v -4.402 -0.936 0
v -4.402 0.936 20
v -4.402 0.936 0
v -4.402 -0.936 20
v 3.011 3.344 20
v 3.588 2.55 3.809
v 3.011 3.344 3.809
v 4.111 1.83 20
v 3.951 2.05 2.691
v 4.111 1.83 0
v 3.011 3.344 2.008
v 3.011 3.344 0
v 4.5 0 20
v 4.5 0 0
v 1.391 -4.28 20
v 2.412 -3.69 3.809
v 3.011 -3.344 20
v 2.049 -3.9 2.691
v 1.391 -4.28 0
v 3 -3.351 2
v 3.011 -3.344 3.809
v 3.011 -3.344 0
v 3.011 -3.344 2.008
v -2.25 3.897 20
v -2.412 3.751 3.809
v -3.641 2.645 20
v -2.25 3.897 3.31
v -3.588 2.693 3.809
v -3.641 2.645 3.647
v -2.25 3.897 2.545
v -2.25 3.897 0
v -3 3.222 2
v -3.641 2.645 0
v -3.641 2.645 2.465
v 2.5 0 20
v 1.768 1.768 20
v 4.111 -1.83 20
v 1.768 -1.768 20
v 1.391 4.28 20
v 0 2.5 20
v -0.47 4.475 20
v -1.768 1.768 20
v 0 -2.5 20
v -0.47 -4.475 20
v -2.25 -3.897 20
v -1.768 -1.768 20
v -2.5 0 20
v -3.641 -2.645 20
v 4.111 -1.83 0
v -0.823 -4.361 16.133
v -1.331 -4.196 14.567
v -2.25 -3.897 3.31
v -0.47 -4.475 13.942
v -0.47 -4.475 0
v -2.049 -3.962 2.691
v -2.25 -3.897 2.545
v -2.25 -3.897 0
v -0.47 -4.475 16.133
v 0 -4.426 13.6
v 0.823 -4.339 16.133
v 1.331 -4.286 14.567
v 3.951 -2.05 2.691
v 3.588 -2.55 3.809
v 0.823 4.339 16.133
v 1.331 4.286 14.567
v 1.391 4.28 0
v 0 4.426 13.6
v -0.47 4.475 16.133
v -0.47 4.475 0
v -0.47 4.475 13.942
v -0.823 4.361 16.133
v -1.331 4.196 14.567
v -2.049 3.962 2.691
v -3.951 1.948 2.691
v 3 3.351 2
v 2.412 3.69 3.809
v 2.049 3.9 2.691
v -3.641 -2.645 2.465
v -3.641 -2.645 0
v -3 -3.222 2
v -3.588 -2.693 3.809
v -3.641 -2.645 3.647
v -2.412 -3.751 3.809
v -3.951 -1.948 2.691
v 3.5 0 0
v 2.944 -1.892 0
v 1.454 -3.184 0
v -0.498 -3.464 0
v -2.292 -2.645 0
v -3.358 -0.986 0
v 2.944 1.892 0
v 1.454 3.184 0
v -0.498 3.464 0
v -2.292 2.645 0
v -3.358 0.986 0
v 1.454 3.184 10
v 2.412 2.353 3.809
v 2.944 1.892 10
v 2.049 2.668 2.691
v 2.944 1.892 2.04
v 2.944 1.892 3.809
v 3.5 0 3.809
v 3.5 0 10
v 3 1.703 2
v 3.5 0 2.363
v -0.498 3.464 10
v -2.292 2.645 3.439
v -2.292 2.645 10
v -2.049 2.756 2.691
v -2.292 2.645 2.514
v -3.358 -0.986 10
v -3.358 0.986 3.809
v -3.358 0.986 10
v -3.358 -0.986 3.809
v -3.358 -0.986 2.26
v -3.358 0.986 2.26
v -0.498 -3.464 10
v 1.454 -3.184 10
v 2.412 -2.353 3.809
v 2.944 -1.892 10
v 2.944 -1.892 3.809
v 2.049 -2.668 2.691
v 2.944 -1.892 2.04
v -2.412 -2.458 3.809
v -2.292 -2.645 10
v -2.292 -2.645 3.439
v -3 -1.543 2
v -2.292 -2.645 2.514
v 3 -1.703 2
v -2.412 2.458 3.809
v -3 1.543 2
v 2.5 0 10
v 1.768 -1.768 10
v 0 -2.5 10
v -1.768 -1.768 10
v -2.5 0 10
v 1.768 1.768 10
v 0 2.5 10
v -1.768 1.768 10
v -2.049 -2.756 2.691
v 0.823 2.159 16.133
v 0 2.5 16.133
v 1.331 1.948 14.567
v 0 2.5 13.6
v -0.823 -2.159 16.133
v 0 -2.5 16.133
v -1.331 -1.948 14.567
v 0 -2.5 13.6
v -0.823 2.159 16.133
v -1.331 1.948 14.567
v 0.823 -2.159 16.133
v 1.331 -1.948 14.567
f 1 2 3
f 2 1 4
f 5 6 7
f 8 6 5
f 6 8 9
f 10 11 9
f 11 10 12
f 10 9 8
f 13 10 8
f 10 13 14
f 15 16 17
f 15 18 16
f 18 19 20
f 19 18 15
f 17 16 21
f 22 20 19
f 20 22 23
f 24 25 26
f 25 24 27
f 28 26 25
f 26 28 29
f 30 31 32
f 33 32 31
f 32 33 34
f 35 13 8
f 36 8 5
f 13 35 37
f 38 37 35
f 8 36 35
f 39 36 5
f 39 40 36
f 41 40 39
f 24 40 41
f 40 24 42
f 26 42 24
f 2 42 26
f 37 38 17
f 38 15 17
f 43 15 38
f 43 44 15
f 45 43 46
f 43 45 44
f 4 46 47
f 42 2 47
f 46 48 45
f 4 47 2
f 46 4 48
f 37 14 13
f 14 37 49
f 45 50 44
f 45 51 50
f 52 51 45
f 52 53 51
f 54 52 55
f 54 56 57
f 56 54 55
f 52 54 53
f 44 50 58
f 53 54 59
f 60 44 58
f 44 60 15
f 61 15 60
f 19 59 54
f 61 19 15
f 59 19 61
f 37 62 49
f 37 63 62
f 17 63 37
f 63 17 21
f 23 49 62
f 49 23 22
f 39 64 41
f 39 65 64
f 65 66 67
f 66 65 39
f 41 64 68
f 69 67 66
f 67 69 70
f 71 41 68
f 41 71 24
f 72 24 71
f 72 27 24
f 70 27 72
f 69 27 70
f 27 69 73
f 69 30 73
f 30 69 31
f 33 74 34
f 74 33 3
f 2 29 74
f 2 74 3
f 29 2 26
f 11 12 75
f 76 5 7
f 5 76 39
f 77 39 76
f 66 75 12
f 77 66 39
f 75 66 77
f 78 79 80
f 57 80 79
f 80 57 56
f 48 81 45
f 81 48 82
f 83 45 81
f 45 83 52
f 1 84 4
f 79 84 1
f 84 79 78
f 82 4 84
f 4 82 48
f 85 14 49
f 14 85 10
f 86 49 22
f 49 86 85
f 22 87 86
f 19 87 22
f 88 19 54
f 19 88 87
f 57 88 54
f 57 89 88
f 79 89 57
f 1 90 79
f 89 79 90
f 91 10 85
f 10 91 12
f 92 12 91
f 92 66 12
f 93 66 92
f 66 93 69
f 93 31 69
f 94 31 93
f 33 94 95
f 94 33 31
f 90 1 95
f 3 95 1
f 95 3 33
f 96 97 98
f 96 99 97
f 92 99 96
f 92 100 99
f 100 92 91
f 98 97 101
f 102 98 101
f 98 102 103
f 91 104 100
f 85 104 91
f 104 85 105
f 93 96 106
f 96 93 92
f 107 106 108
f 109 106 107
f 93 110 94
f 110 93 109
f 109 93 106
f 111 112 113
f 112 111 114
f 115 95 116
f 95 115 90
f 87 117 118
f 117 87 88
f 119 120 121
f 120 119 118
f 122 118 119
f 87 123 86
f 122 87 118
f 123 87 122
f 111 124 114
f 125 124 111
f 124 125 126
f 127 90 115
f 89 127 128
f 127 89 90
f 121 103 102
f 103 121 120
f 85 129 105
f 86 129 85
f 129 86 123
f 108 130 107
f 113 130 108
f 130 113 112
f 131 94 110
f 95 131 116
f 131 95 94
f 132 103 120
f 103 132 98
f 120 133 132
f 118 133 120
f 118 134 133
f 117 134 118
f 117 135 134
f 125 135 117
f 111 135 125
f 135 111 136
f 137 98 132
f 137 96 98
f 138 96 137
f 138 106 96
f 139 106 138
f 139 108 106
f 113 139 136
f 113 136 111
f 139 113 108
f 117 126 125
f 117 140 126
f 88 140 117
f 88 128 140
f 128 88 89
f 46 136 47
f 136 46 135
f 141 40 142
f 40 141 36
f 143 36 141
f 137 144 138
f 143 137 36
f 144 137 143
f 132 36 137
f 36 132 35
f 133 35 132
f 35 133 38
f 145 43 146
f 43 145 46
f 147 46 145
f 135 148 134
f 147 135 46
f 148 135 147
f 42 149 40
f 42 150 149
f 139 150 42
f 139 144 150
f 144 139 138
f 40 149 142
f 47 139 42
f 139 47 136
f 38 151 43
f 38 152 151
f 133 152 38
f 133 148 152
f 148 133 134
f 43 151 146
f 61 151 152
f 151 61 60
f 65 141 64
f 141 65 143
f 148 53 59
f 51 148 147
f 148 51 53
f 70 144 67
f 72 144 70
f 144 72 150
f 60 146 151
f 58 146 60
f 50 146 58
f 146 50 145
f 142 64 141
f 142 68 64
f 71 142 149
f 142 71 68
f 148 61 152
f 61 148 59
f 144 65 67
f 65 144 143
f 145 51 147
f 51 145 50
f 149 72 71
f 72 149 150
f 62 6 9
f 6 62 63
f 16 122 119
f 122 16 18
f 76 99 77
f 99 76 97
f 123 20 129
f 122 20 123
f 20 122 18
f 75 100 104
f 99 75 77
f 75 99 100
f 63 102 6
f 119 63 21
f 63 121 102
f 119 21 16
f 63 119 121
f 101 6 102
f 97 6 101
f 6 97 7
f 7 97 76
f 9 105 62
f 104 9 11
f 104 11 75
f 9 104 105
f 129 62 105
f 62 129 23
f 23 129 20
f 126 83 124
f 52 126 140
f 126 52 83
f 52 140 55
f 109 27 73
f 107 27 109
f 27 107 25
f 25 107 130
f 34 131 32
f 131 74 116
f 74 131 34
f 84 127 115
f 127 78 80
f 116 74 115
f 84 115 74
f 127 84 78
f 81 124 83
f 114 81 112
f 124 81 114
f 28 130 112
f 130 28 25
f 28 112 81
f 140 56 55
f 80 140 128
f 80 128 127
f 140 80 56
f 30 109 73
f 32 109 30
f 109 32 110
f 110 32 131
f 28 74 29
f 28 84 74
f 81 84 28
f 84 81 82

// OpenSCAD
module nozleHolder(){
    
    difference() {
   cylinder(d=9,h=20); 
        translate([0,0,-10])
        cylinder(d=7,h=20);        
        cylinder(d=5,h=40); 
        
        translate([0,-10,15])
    rotate( [0,90,90])
        cylinder(d=2.8,h=40);     
        
        
        translate([3,-10,3])
        rotate( [0,90,90])
        cylinder(d=2,h=40);     
        
translate([-3,-10,3])
        rotate( [0,90,90])
        cylinder(d=2,h=40);             
    }
   
}

nozleHolder();
